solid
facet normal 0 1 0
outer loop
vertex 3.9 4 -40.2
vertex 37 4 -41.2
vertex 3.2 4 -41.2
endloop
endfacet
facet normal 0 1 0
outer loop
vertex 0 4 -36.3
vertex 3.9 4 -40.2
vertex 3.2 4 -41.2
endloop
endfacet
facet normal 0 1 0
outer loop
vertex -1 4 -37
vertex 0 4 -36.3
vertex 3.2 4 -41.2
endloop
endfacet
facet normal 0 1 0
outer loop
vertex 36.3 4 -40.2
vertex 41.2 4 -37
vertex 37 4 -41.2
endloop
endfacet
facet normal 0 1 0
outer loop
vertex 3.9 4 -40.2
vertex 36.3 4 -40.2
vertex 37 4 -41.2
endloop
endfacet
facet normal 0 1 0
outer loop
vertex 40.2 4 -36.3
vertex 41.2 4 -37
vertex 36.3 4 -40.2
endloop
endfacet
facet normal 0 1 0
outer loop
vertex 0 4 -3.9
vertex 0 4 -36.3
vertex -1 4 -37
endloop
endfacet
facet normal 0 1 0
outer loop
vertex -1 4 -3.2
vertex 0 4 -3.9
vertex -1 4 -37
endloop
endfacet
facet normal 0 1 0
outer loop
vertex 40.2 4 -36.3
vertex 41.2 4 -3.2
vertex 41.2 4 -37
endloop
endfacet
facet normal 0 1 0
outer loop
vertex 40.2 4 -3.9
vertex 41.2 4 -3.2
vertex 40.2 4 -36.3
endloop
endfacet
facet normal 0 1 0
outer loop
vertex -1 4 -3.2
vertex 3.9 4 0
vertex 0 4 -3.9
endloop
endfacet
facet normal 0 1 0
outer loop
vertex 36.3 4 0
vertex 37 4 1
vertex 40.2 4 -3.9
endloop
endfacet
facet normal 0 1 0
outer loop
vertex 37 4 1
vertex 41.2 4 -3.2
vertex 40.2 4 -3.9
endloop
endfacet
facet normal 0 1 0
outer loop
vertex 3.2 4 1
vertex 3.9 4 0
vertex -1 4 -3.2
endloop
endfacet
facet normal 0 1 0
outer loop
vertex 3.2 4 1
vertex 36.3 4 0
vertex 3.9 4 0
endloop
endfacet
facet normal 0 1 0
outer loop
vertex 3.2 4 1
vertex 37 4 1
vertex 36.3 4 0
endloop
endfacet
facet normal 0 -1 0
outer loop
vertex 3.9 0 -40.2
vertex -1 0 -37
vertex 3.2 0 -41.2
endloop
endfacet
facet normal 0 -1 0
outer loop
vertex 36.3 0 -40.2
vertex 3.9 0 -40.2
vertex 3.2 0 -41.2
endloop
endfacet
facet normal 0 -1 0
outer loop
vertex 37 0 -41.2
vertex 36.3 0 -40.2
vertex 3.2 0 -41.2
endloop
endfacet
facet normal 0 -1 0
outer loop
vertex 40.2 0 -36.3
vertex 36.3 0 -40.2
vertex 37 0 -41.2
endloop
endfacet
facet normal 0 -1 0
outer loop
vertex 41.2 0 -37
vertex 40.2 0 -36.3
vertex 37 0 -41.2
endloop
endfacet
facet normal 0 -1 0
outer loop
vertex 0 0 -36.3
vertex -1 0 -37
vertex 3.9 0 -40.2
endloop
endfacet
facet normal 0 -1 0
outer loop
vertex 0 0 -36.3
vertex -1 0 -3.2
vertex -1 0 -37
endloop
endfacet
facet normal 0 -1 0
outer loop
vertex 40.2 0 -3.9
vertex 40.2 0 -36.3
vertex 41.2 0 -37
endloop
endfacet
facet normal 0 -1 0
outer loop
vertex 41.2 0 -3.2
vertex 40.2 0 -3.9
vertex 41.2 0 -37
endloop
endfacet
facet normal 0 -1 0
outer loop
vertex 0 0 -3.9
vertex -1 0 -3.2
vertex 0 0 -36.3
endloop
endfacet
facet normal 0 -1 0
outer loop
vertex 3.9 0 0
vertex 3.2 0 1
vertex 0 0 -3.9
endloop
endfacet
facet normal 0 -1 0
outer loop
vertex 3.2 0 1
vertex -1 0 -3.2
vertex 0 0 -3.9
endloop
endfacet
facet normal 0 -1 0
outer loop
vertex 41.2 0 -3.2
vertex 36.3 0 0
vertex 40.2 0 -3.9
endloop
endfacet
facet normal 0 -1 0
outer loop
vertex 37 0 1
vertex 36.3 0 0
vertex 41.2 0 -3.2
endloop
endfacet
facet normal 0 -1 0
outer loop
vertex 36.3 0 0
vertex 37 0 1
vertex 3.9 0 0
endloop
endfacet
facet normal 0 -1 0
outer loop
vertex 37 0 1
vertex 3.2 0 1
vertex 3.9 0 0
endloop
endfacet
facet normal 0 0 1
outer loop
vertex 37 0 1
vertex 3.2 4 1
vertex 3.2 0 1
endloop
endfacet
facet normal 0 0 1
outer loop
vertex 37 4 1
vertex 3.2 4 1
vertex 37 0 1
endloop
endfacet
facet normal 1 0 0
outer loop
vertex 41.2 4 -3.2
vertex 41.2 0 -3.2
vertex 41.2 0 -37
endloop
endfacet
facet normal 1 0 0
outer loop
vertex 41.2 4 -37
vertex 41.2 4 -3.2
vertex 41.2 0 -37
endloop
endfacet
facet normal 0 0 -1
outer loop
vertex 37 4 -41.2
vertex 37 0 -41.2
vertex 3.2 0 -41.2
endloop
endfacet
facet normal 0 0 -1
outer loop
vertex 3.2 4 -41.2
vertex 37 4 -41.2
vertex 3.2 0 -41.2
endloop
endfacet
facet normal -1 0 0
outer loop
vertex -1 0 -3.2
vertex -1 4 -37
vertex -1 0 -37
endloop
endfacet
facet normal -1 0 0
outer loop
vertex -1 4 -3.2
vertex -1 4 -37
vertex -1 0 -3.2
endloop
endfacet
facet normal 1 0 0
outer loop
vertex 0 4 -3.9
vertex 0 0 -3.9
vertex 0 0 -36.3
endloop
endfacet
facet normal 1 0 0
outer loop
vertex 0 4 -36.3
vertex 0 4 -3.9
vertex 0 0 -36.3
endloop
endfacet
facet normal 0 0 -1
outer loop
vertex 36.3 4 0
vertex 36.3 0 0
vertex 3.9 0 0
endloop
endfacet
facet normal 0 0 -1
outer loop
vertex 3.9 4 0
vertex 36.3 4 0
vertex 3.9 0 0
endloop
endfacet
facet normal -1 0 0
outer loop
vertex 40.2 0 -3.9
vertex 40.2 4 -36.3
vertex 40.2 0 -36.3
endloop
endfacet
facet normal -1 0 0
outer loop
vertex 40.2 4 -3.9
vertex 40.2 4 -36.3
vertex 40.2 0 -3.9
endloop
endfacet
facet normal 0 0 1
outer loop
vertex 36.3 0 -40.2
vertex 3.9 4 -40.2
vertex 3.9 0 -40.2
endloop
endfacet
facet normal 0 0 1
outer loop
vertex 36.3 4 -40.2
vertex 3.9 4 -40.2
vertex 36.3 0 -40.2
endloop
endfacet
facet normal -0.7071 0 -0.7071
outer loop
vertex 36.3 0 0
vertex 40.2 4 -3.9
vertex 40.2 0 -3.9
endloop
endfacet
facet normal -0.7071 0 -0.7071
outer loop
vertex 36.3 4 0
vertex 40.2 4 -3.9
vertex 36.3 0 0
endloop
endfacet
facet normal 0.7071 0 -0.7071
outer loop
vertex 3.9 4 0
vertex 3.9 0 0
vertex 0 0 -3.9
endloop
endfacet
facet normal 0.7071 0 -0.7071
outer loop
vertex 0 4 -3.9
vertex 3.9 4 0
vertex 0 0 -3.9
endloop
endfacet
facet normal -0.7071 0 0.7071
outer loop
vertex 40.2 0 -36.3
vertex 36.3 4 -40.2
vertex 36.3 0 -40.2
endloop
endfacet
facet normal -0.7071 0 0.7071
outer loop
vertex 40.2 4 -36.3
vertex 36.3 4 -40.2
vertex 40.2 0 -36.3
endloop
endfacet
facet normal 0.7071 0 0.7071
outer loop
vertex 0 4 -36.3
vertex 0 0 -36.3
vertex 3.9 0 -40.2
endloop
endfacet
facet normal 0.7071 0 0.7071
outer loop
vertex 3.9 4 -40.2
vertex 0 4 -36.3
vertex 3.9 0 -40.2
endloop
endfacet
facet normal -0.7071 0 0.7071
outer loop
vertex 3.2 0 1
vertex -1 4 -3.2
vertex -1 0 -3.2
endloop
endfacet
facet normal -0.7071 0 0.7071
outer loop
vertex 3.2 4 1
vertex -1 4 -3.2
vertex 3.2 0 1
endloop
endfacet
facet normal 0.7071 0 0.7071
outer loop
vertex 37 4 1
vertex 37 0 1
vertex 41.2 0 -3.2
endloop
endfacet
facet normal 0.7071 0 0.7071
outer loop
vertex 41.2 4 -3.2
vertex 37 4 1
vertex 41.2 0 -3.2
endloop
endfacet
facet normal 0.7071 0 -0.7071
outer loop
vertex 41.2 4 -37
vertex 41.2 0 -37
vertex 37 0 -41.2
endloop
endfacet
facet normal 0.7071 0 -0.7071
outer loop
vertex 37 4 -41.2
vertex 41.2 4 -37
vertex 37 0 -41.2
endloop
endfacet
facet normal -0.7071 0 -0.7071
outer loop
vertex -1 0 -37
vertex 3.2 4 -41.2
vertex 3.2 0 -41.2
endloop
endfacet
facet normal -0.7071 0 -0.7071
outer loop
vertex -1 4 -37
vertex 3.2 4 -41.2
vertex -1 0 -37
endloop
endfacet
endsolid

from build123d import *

# Parameters (mm, degrees)
SKETCH_1_W      = 42.2
SKETCH_1_H      = 42.2
SKETCH_1_W_2    = 40.2
SKETCH_1_H_2    = 40.2
EXTRUDE_1_DEPTH = 4
CHAMFER_1_SIZE  = 3.9
CHAMFER_2_SIZE  = 4.2


with BuildPart() as part:
    # 草图1 → 凸台-拉伸1 (new body)
    with BuildSketch(Plane(origin=(0, 0, 0), x_dir=(1, 0, 0), z_dir=(0, 1, 0))):
        with Locations((20.1, 20.1)):
            Rectangle(SKETCH_1_W, SKETCH_1_H)
        with Locations((20.1, 20.1)):
            Rectangle(SKETCH_1_W_2, SKETCH_1_H_2, mode=Mode.SUBTRACT)
    extrude(amount=EXTRUDE_1_DEPTH)

    # 倒角1
    chamfer_1_edges = [part.edges().sort_by_distance(p)[0] for p in [
        (0, 2, -40.2),
        (0, 2, 0),
        (40.2, 2, 0),
        (40.2, 2, -40.2),
    ]]
    chamfer(chamfer_1_edges, length=CHAMFER_1_SIZE)

    # 倒角2
    chamfer_2_edges = [part.edges().sort_by_distance(p)[0] for p in [
        (-1, 2, 1),
        (-1, 2, -41.2),
        (41.2, 2, -41.2),
        (41.2, 2, 1),
    ]]
    chamfer(chamfer_2_edges, length=CHAMFER_2_SIZE)


solid = part.part
